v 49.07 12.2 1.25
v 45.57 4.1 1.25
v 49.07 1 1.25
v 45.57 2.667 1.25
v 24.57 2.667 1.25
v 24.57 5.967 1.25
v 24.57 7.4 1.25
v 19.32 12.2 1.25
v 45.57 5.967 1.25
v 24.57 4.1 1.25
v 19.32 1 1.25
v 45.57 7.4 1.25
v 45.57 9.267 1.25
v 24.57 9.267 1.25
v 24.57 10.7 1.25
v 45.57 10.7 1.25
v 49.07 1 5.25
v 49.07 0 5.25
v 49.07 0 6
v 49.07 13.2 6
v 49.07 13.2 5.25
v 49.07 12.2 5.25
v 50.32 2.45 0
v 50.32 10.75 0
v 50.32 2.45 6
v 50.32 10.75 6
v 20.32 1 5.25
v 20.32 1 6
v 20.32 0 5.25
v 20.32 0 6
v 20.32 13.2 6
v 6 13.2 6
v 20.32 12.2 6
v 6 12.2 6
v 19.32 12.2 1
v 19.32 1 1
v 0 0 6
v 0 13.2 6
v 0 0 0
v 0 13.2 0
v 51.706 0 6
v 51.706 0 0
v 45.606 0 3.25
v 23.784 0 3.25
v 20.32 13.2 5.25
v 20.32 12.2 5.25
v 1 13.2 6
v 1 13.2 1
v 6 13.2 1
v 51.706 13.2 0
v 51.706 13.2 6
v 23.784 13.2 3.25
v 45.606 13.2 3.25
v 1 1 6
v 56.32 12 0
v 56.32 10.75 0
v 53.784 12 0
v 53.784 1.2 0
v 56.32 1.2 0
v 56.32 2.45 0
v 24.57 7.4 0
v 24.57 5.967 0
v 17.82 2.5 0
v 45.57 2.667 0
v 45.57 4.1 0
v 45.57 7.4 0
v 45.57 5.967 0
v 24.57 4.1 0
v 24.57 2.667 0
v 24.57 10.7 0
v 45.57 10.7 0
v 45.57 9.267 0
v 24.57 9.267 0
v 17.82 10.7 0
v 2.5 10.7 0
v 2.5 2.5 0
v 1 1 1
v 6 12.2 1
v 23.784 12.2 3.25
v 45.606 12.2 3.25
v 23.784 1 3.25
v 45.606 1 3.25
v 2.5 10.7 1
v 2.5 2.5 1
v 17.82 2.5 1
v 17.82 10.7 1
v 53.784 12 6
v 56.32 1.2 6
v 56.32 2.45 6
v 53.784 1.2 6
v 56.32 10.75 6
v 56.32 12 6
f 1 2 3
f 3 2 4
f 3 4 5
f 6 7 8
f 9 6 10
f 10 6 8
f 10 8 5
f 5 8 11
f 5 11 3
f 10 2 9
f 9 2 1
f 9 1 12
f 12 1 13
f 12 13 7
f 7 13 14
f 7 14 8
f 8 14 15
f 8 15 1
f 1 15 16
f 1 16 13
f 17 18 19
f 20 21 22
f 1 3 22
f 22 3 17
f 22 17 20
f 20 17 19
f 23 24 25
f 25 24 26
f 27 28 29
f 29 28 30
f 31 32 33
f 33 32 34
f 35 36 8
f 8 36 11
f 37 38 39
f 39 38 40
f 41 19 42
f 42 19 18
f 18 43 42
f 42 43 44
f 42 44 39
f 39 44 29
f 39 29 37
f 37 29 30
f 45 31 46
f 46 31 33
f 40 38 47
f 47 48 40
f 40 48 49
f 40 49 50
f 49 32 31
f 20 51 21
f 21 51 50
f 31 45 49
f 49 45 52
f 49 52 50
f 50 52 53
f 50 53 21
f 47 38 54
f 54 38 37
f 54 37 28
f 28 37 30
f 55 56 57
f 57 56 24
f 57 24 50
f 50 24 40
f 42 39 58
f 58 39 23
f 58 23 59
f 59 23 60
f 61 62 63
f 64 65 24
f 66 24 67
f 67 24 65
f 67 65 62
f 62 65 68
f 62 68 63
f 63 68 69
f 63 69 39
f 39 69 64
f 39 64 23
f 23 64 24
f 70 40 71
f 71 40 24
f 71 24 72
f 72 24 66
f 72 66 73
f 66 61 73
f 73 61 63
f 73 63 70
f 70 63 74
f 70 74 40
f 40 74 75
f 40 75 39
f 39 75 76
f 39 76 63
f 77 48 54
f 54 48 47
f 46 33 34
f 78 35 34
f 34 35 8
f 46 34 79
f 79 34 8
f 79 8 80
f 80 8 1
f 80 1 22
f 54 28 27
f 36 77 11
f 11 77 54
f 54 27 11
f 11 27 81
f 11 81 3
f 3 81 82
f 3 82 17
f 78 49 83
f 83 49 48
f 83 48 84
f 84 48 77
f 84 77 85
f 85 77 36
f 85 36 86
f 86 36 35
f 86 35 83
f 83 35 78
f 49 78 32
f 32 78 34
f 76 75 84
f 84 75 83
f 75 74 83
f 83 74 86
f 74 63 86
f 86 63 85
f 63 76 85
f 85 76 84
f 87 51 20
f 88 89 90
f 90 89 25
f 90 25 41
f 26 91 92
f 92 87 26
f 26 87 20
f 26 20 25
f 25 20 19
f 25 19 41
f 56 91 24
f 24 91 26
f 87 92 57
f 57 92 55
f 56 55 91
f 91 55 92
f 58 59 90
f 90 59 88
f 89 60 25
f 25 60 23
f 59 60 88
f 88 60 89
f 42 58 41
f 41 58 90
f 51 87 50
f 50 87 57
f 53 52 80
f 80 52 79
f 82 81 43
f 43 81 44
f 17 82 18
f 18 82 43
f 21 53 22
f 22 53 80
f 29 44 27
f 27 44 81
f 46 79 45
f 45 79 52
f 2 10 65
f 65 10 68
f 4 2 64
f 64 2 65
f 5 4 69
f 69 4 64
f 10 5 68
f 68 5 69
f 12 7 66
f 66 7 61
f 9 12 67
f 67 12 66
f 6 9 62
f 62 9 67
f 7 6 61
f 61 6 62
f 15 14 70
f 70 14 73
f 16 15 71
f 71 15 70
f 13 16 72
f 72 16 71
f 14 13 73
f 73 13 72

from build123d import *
from OCP.BRepFilletAPI import BRepFilletAPI_MakeChamfer

# Parameters (mm, degrees)
ESQUISSE1_W             = 20.32
ESQUISSE1_H             = 13.2
BOSS_EXTRU_1_DEPTH      = 6
ESQUISSE2_W             = 18.32
ESQUISSE2_H             = 11.2
ENL_V_MAT_EXTRU_1_DEPTH = 5
ESQUISSE3_W             = 5
ESQUISSE3_H             = 1
ENL_V_MAT_EXTRU_2_DEPTH = 5
ESQUISSE4_W             = 15.32
ESQUISSE4_H             = 8.2
ENL_V_MAT_EXTRU_3_DEPTH = 25.741511676
ESQUISSE6_W             = 1
ESQUISSE6_H             = 11.2
ENL_V_MAT_EXTRU_4_DEPTH = 4.75
ESQUISSE7_W             = 30
ESQUISSE7_H             = 13.2
BOSS_EXTRU_2_DEPTH      = 1.25
ESQUISSE8_W             = 1.25
ESQUISSE8_H             = 13.2
BOSS_EXTRU_3_DEPTH      = 4.75
ESQUISSE9_W             = 6
ESQUISSE9_H             = 1.25
BOSS_EXTRU_4_DEPTH      = 6
CHANFREIN1_SIZE         = 2
CHANFREIN1_SIZE_2       = 3.464101615
ESQUISSE10_W            = 28.75
ESQUISSE10_H            = 1
BOSS_EXTRU_5_DEPTH      = 2
CHANFREIN2_SIZE         = 2
CHANFREIN2_SIZE2        = 3.464101615
ESQUISSE11_W            = 21
ESQUISSE11_H            = 1.433492253
ENL_V_MAT_EXTRU_5_DEPTH = 2


with BuildPart() as part:
    # Esquisse1 → Boss.-Extru.1 (new body)
    with BuildSketch(Plane.XY):
        with Locations((10.16, 6.6)):
            Rectangle(ESQUISSE1_W, ESQUISSE1_H)
    extrude(amount=BOSS_EXTRU_1_DEPTH)

    # Esquisse2 → Enlèv. mat.-Extru.1 (cut)
    with BuildSketch(Plane.XY.offset(6)):
        with Locations((10.16, 6.6)):
            Rectangle(ESQUISSE2_W, ESQUISSE2_H)
    extrude(amount=-ENL_V_MAT_EXTRU_1_DEPTH, mode=Mode.SUBTRACT)

    # Esquisse3 → Enlèv. mat.-Extru.2 (cut)
    with BuildSketch(Plane.XY.offset(6)):
        with Locations((3.5, 12.7)):
            Rectangle(ESQUISSE3_W, ESQUISSE3_H)
    extrude(amount=-ENL_V_MAT_EXTRU_2_DEPTH, mode=Mode.SUBTRACT)

    # Esquisse4 → Enlèv. mat.-Extru.3 (cut, through all)
    with BuildSketch(Plane.XY.offset(1)):
        with Locations((10.16, 6.6)):
            Rectangle(ESQUISSE4_W, ESQUISSE4_H)
    extrude(amount=-ENL_V_MAT_EXTRU_3_DEPTH, mode=Mode.SUBTRACT)

    # Esquisse6 → Enlèv. mat.-Extru.4 (cut)
    with BuildSketch(Plane.XY.offset(6)):
        with Locations((19.82, 6.6)):
            Rectangle(ESQUISSE6_W, ESQUISSE6_H)
    extrude(amount=-ENL_V_MAT_EXTRU_4_DEPTH, mode=Mode.SUBTRACT)

    # Esquisse7 → Boss.-Extru.2 (add)
    with BuildSketch(Plane(origin=(0, 0, 0), x_dir=(-1, 0, 0), z_dir=(0, 0, -1))):
        with Locations((-35.32, 6.6)):
            Rectangle(ESQUISSE7_W, ESQUISSE7_H)
    extrude(amount=-BOSS_EXTRU_2_DEPTH)

    # Esquisse8 → Boss.-Extru.3 (add)
    with BuildSketch(Plane.XY.offset(1.25)):
        with Locations((49.695, 6.6)):
            Rectangle(ESQUISSE8_W, ESQUISSE8_H)
    extrude(amount=BOSS_EXTRU_3_DEPTH)

    # Esquisse9 → Boss.-Extru.4 (add)
    with BuildSketch(Plane(origin=(50.32, 0, 0), x_dir=(0, 0, -1), z_dir=(1, 0, 0))):
        with Locations((-3, 11.375)):
            Rectangle(ESQUISSE9_W, ESQUISSE9_H)
        with Locations((-3, 1.825)):
            Rectangle(ESQUISSE9_W, ESQUISSE9_H)
    extrude(amount=BOSS_EXTRU_4_DEPTH)

    # Chanfrein1
    # the kernel refuses this chamfer: 3.464101615, 2 mm, written as the material it adds along each edge
    with BuildSketch(Plane(origin=(50.32, 12, 6), x_dir=(-0.057893862402669756, 0.9983227437537926, 0), z_dir=(0, 0, -1))) as chanfrein1_piece_1_section:
        Polygon((CHANFREIN1_SIZE * 0.998322743754, CHANFREIN1_SIZE * 0.0578938624027), (-CHANFREIN1_SIZE_2 * 0.057893862405, CHANFREIN1_SIZE_2 * 0.998322743793), (0, 0), align=None)
    chanfrein1_piece_1 = extrude(amount=6, mode=Mode.PRIVATE)
    chanfrein1_piece_1 = split(chanfrein1_piece_1, bisect_by=Plane(origin=(51.640549775, 13.2, 3), z_dir=(0, -1, 0)), keep=Keep.TOP, mode=Mode.PRIVATE)
    add(chanfrein1_piece_1)
    with BuildSketch(Plane(origin=(50.32, 1.2, 0), x_dir=(-0.05789386240266974, -0.9983227437537926, 0), z_dir=(0, 0, 1))) as chanfrein1_piece_2_section:
        Polygon((CHANFREIN1_SIZE * 0.998322743754, CHANFREIN1_SIZE * 0.0578938624027), (-CHANFREIN1_SIZE_2 * 0.057893862405, CHANFREIN1_SIZE_2 * 0.998322743793), (0, 0), align=None)
    chanfrein1_piece_2 = extrude(amount=6, mode=Mode.PRIVATE)
    chanfrein1_piece_2 = split(chanfrein1_piece_2, bisect_by=Plane(origin=(51.640549775, 0, 3), z_dir=(0, 1, 0)), keep=Keep.TOP, mode=Mode.PRIVATE)
    add(chanfrein1_piece_2)

    # Esquisse10 → Boss.-Extru.5 (add)
    with BuildSketch(Plane.XY.offset(1.25)):
        with Locations((34.695, 12.7)):
            Rectangle(ESQUISSE10_W, ESQUISSE10_H)
        with Locations((34.695, 0.5)):
            Rectangle(ESQUISSE10_W, ESQUISSE10_H)
    extrude(amount=BOSS_EXTRU_5_DEPTH)

    # Chanfrein2: one chamfer whose edges measure the first distance from different faces: ONE call of the kernel's chamfer builder (chamfer() names one face for all edges)
    chanfrein2_edges_1 = [part.edges().sort_by_distance(p)[0] for p in [
        (20.32, 12.7, 3.25),
    ]]
    chanfrein2_side_1 = [part.faces().sort_by_distance(p)[0] for p in [
        (20.32, 12.7, 4.625),
    ]]
    chanfrein2_edges_2 = [part.edges().sort_by_distance(p)[0] for p in [
        (49.07, 12.7, 3.25),
        (49.07, 0.5, 3.25),
    ]]
    chanfrein2_side_2 = [part.faces().sort_by_distance(p)[0] for p in [
        (49.07, 6.6, 3.718696763),
    ]]
    chanfrein2_edges_3 = [part.edges().sort_by_distance(p)[0] for p in [
        (20.32, 0.5, 3.25),
    ]]
    chanfrein2_side_3 = [part.faces().sort_by_distance(p)[0] for p in [
        (20.32, 0.5, 4.625),
    ]]
    chanfrein2 = BRepFilletAPI_MakeChamfer(part.part.solid().wrapped)
    for e in chanfrein2_edges_1:
        chanfrein2.Add(CHANFREIN2_SIZE, CHANFREIN2_SIZE2, e.wrapped, chanfrein2_side_1[0].wrapped)  # the first distance lies on this face
    for e in chanfrein2_edges_2:
        chanfrein2.Add(CHANFREIN2_SIZE, CHANFREIN2_SIZE2, e.wrapped, chanfrein2_side_2[0].wrapped)  # the first distance lies on this face
    for e in chanfrein2_edges_3:
        chanfrein2.Add(CHANFREIN2_SIZE, CHANFREIN2_SIZE2, e.wrapped, chanfrein2_side_3[0].wrapped)  # the first distance lies on this face
    add(Compound.cast(chanfrein2.Shape()), mode=Mode.REPLACE)

    # Esquisse11 → Enlèv. mat.-Extru.5 (cut)
    with BuildSketch(Plane.XY.offset(1.25)):
        with Locations((35.07, 9.983253874)):
            Rectangle(ESQUISSE11_W, ESQUISSE11_H)
        with Locations((35.07, 6.683253873)):
            Rectangle(ESQUISSE11_W, ESQUISSE11_H)
        with Locations((35.07, 3.383253874)):
            Rectangle(ESQUISSE11_W, ESQUISSE11_H)
    extrude(amount=-ENL_V_MAT_EXTRU_5_DEPTH, mode=Mode.SUBTRACT)


solid = part.part
